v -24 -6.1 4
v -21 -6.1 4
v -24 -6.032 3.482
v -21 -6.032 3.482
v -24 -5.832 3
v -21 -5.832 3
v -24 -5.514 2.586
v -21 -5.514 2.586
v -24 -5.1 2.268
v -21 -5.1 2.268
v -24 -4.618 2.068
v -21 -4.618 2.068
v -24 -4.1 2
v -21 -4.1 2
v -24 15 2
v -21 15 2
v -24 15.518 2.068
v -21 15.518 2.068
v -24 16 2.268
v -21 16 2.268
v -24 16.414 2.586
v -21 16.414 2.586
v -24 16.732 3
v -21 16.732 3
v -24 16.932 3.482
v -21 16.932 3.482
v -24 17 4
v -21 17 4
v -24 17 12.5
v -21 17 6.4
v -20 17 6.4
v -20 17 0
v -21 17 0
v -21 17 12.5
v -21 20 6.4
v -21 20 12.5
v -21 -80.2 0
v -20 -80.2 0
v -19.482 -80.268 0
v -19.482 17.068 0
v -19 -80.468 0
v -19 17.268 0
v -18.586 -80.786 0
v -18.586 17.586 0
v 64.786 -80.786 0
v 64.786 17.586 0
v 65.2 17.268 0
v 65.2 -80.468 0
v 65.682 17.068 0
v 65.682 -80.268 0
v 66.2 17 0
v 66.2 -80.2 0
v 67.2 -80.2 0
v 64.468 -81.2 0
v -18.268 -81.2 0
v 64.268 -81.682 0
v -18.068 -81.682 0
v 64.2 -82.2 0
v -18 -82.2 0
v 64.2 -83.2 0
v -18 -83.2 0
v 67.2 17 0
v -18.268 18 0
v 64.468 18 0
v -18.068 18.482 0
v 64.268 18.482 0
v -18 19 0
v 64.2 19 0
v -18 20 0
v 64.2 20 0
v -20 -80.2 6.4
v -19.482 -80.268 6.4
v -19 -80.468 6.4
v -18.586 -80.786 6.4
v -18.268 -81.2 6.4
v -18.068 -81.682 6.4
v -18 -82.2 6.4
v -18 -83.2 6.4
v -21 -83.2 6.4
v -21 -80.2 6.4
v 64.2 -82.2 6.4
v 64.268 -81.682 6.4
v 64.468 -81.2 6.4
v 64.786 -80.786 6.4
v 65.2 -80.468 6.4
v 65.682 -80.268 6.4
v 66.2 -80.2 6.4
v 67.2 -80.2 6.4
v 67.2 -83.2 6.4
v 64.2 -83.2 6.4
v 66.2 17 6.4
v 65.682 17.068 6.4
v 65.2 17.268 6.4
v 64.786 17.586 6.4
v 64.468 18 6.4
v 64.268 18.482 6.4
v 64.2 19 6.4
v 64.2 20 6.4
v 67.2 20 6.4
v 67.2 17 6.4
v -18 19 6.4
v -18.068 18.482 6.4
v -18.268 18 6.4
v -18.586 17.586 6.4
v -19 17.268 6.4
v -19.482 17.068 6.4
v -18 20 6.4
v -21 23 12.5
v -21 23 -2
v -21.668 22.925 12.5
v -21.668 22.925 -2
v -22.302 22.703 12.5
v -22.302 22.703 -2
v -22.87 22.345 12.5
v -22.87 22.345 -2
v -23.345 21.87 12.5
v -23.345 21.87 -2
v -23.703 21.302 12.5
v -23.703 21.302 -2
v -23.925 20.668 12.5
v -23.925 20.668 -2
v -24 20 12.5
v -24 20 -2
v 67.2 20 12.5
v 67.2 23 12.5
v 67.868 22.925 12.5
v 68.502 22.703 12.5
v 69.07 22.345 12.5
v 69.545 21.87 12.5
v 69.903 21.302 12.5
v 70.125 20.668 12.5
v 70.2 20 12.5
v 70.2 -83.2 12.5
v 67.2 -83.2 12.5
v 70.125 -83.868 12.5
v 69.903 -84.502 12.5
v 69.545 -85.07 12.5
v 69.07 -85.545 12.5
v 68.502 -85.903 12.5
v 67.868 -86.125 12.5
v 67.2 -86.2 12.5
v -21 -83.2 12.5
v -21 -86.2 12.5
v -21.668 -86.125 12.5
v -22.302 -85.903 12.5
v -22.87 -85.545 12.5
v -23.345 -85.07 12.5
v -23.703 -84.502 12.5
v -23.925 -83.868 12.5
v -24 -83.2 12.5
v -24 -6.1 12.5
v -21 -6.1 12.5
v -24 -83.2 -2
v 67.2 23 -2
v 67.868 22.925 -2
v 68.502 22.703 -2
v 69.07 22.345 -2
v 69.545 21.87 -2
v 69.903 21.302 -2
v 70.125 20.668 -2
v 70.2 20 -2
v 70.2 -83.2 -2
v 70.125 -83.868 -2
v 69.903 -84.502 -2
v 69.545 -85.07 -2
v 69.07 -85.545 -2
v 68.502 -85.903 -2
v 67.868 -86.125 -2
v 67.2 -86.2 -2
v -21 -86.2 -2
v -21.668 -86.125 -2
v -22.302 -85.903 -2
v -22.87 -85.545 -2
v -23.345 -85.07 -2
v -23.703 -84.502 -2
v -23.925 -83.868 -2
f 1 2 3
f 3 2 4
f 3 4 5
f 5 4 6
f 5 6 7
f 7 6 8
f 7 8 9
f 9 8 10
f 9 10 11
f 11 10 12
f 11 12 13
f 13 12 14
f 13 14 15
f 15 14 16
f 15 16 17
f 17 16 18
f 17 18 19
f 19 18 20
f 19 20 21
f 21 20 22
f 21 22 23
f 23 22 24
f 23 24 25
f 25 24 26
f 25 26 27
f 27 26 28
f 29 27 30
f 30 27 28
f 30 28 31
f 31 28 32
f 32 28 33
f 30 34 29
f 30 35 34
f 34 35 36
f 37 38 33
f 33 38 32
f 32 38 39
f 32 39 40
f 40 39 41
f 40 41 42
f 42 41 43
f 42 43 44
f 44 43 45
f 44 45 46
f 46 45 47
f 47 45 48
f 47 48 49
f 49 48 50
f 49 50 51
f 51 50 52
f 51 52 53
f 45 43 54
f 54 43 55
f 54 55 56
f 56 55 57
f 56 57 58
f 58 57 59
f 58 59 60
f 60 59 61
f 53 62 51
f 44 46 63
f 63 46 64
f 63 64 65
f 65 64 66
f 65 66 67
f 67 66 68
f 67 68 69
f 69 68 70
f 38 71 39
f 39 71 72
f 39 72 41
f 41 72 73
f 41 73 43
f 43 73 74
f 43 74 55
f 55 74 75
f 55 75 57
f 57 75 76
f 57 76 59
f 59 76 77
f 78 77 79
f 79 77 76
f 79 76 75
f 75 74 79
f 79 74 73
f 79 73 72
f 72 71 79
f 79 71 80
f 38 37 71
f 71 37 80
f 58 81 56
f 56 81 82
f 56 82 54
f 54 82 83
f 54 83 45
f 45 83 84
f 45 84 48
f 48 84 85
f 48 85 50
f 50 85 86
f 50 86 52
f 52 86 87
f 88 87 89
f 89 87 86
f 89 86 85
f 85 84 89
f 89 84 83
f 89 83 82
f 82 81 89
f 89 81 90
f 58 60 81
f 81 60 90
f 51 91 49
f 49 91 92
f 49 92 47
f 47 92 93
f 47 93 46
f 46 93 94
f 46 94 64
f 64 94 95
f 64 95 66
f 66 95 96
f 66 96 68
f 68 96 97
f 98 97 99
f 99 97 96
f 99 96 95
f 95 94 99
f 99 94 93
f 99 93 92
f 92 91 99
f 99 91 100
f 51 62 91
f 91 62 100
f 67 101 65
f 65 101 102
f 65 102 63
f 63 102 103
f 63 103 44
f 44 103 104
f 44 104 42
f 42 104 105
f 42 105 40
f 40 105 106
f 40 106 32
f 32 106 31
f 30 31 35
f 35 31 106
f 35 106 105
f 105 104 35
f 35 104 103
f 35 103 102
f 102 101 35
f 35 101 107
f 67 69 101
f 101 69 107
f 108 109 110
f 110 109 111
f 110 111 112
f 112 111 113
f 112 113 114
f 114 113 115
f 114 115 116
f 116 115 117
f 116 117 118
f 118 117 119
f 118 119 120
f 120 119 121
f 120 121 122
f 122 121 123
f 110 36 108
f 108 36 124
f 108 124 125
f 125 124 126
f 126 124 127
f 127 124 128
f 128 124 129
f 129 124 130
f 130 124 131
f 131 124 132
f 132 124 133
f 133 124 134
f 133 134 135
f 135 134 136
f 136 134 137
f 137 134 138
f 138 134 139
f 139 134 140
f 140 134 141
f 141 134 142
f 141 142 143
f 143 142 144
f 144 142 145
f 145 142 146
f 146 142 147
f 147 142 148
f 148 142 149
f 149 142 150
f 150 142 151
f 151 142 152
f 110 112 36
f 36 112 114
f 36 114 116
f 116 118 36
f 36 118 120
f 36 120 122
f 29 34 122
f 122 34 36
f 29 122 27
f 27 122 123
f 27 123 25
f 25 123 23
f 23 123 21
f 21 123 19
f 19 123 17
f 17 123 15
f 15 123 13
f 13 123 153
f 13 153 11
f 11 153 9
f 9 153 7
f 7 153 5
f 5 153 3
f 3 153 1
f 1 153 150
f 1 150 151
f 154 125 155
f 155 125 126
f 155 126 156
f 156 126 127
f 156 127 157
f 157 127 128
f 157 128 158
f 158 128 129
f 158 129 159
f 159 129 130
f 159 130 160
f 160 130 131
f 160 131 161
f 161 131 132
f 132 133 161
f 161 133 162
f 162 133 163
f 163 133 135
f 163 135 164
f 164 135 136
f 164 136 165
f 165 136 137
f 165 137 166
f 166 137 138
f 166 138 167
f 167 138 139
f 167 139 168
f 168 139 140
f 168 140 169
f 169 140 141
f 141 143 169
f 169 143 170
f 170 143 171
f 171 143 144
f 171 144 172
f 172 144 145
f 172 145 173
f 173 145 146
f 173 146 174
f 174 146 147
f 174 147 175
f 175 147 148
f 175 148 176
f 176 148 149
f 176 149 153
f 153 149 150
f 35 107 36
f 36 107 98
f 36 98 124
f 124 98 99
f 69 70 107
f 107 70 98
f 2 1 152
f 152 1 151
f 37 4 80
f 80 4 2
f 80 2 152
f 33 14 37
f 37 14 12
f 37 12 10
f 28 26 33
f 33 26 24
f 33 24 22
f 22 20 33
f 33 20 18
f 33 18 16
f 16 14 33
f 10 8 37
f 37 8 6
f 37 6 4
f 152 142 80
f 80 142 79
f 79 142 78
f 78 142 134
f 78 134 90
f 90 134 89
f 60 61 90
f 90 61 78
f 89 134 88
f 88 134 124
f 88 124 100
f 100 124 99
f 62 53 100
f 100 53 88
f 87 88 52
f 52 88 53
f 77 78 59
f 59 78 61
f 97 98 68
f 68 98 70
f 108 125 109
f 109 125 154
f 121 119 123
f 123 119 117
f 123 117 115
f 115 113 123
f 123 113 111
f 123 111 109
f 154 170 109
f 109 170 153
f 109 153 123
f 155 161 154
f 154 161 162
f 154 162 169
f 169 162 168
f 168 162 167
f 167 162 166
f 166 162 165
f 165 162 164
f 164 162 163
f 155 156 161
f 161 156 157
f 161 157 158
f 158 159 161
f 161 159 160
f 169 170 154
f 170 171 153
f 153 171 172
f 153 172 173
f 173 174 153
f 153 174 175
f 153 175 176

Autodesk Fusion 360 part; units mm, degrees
sketch "Sketch1" plane through (0, 0, 0) normal (0, 0, 1) x (1, 0, 0)
  line L0 (-21, 20) -> (67.2, 20)
  line L1 (67.2, 20) -> (67.2, -83.2)
  line L2 (67.2, -83.2) -> (-21, -83.2)
  line L3 (-21, -83.2) -> (-21, 20)
  line L4 (-24, 23) -> (70.2, 23)
  line L5 (70.2, 23) -> (70.2, -86.2)
  line L6 (70.2, -86.2) -> (-24, -86.2)
  line L7 (-24, -86.2) -> (-24, 23)
  line L8 (-21, 20) -> (-24, 20)
  line L9 (-24, 20) -> (-24, -6.1)
  line L10 (-24, -6.1) -> (-21, -6.1)
  line L11 (-21, -6.1) -> (-21, 20)
  line L12 (-21, 20) -> (-18, 20)
  line L13 (-18, 20) -> (-18, 17)
  line L14 (-18, 17) -> (-21, 17)
  line L15 (-21, 17) -> (-21, 20)
  line L16 (67.2, 20) -> (64.2, 20)
  line L17 (64.2, 20) -> (64.2, 17)
  line L18 (64.2, 17) -> (67.2, 17)
  line L19 (67.2, 17) -> (67.2, 20)
  line L20 (-21, -83.2) -> (-18, -83.2)
  line L21 (-18, -83.2) -> (-18, -80.2)
  line L22 (-18, -80.2) -> (-21, -80.2)
  line L23 (-21, -80.2) -> (-21, -83.2)
  line L24 (67.2, -83.2) -> (64.2, -83.2)
  line L25 (64.2, -83.2) -> (64.2, -80.2)
  line L26 (64.2, -80.2) -> (67.2, -80.2)
  line L27 (67.2, -80.2) -> (67.2, -83.2)
  line L28 (-24, 20) -> (-21, 20)
  line L29 (-21, 20) -> (-21, 17)
  line L30 (-21, 17) -> (-24, 17)
  line L31 (-24, 17) -> (-24, 20)
  dimension "d1" = 88.2
  dimension "d2" = 103.2
  dimension "d3" = 94.2
  dimension "d4" = 109.2
  dimension "d5" = 3
  dimension "d6" = 3
  dimension "d7" = 3
  dimension "d8" = 26.1
  dimension "d9" = 3
  dimension "d10" = 3
  dimension "d11" = 3
  dimension "d12" = 3
  dimension "d13" = 3
  dimension "d14" = 3
  dimension "d15" = 3
  dimension "d16" = 3
extrude "Extrude1" add sketch "Sketch1" against normal blind 2 makes body 1
extrude "Extrude2" add sketch "Sketch1" along normal blind 6.4 separate body contours L0 L3 L11 L12 L13 L14 L15 L29 | L0 L1 L16 L17 L18 L19 | L2 L3 L20 L21 L22 L23 | L1 L2 L24 L25 L26 L27 makes body 2 at (65.2, 20, 2.1333) makes body 3 at (-18, -82.2, 2.1333) makes body 4 at (-20, 20, 2.1333) makes body 5 at (67.2, -81.2, 2.1333)
extrude "Extrude3" add sketch "Sketch1" along normal blind 12.5 contours L0 L1 L2 L3 L4 L5 L6 L7 L8 L10 L12 L16 L19 L20 L23 L24 L27 L28 bodies 1 2 3 4 5
extrude "Extrude4" add sketch "Sketch1" along normal blind 12.5 separate body contours L3 L7 L8 L9 L11 L15 L28 L29 L30 L31 makes body 6
fillet "Fillet1" radius 3 4 edges at (-24, -86.2, 5.25) (70.2, -86.2, 5.25) (70.2, 23, 5.25) (-24, 23, 5.25) on bodies 1
fillet "Fillet2" radius 2 1 edges at (-18, 17, 3.2) on bodies 1
fillet "Fillet3" radius 2 3 edges at (64.2, 17, 3.2) (64.2, -80.2, 3.2) (-18, -80.2, 3.2) on bodies 1
extrude "Extrude5" add sketch "Sketch1" along normal blind 2 contours L3 L7 L9 L10 L11 L30 bodies 1 6
fillet "Fillet4" radius 2 2 edges at (-22.5, 17, 2) (-22.5, -6.1, 2) on bodies 1
